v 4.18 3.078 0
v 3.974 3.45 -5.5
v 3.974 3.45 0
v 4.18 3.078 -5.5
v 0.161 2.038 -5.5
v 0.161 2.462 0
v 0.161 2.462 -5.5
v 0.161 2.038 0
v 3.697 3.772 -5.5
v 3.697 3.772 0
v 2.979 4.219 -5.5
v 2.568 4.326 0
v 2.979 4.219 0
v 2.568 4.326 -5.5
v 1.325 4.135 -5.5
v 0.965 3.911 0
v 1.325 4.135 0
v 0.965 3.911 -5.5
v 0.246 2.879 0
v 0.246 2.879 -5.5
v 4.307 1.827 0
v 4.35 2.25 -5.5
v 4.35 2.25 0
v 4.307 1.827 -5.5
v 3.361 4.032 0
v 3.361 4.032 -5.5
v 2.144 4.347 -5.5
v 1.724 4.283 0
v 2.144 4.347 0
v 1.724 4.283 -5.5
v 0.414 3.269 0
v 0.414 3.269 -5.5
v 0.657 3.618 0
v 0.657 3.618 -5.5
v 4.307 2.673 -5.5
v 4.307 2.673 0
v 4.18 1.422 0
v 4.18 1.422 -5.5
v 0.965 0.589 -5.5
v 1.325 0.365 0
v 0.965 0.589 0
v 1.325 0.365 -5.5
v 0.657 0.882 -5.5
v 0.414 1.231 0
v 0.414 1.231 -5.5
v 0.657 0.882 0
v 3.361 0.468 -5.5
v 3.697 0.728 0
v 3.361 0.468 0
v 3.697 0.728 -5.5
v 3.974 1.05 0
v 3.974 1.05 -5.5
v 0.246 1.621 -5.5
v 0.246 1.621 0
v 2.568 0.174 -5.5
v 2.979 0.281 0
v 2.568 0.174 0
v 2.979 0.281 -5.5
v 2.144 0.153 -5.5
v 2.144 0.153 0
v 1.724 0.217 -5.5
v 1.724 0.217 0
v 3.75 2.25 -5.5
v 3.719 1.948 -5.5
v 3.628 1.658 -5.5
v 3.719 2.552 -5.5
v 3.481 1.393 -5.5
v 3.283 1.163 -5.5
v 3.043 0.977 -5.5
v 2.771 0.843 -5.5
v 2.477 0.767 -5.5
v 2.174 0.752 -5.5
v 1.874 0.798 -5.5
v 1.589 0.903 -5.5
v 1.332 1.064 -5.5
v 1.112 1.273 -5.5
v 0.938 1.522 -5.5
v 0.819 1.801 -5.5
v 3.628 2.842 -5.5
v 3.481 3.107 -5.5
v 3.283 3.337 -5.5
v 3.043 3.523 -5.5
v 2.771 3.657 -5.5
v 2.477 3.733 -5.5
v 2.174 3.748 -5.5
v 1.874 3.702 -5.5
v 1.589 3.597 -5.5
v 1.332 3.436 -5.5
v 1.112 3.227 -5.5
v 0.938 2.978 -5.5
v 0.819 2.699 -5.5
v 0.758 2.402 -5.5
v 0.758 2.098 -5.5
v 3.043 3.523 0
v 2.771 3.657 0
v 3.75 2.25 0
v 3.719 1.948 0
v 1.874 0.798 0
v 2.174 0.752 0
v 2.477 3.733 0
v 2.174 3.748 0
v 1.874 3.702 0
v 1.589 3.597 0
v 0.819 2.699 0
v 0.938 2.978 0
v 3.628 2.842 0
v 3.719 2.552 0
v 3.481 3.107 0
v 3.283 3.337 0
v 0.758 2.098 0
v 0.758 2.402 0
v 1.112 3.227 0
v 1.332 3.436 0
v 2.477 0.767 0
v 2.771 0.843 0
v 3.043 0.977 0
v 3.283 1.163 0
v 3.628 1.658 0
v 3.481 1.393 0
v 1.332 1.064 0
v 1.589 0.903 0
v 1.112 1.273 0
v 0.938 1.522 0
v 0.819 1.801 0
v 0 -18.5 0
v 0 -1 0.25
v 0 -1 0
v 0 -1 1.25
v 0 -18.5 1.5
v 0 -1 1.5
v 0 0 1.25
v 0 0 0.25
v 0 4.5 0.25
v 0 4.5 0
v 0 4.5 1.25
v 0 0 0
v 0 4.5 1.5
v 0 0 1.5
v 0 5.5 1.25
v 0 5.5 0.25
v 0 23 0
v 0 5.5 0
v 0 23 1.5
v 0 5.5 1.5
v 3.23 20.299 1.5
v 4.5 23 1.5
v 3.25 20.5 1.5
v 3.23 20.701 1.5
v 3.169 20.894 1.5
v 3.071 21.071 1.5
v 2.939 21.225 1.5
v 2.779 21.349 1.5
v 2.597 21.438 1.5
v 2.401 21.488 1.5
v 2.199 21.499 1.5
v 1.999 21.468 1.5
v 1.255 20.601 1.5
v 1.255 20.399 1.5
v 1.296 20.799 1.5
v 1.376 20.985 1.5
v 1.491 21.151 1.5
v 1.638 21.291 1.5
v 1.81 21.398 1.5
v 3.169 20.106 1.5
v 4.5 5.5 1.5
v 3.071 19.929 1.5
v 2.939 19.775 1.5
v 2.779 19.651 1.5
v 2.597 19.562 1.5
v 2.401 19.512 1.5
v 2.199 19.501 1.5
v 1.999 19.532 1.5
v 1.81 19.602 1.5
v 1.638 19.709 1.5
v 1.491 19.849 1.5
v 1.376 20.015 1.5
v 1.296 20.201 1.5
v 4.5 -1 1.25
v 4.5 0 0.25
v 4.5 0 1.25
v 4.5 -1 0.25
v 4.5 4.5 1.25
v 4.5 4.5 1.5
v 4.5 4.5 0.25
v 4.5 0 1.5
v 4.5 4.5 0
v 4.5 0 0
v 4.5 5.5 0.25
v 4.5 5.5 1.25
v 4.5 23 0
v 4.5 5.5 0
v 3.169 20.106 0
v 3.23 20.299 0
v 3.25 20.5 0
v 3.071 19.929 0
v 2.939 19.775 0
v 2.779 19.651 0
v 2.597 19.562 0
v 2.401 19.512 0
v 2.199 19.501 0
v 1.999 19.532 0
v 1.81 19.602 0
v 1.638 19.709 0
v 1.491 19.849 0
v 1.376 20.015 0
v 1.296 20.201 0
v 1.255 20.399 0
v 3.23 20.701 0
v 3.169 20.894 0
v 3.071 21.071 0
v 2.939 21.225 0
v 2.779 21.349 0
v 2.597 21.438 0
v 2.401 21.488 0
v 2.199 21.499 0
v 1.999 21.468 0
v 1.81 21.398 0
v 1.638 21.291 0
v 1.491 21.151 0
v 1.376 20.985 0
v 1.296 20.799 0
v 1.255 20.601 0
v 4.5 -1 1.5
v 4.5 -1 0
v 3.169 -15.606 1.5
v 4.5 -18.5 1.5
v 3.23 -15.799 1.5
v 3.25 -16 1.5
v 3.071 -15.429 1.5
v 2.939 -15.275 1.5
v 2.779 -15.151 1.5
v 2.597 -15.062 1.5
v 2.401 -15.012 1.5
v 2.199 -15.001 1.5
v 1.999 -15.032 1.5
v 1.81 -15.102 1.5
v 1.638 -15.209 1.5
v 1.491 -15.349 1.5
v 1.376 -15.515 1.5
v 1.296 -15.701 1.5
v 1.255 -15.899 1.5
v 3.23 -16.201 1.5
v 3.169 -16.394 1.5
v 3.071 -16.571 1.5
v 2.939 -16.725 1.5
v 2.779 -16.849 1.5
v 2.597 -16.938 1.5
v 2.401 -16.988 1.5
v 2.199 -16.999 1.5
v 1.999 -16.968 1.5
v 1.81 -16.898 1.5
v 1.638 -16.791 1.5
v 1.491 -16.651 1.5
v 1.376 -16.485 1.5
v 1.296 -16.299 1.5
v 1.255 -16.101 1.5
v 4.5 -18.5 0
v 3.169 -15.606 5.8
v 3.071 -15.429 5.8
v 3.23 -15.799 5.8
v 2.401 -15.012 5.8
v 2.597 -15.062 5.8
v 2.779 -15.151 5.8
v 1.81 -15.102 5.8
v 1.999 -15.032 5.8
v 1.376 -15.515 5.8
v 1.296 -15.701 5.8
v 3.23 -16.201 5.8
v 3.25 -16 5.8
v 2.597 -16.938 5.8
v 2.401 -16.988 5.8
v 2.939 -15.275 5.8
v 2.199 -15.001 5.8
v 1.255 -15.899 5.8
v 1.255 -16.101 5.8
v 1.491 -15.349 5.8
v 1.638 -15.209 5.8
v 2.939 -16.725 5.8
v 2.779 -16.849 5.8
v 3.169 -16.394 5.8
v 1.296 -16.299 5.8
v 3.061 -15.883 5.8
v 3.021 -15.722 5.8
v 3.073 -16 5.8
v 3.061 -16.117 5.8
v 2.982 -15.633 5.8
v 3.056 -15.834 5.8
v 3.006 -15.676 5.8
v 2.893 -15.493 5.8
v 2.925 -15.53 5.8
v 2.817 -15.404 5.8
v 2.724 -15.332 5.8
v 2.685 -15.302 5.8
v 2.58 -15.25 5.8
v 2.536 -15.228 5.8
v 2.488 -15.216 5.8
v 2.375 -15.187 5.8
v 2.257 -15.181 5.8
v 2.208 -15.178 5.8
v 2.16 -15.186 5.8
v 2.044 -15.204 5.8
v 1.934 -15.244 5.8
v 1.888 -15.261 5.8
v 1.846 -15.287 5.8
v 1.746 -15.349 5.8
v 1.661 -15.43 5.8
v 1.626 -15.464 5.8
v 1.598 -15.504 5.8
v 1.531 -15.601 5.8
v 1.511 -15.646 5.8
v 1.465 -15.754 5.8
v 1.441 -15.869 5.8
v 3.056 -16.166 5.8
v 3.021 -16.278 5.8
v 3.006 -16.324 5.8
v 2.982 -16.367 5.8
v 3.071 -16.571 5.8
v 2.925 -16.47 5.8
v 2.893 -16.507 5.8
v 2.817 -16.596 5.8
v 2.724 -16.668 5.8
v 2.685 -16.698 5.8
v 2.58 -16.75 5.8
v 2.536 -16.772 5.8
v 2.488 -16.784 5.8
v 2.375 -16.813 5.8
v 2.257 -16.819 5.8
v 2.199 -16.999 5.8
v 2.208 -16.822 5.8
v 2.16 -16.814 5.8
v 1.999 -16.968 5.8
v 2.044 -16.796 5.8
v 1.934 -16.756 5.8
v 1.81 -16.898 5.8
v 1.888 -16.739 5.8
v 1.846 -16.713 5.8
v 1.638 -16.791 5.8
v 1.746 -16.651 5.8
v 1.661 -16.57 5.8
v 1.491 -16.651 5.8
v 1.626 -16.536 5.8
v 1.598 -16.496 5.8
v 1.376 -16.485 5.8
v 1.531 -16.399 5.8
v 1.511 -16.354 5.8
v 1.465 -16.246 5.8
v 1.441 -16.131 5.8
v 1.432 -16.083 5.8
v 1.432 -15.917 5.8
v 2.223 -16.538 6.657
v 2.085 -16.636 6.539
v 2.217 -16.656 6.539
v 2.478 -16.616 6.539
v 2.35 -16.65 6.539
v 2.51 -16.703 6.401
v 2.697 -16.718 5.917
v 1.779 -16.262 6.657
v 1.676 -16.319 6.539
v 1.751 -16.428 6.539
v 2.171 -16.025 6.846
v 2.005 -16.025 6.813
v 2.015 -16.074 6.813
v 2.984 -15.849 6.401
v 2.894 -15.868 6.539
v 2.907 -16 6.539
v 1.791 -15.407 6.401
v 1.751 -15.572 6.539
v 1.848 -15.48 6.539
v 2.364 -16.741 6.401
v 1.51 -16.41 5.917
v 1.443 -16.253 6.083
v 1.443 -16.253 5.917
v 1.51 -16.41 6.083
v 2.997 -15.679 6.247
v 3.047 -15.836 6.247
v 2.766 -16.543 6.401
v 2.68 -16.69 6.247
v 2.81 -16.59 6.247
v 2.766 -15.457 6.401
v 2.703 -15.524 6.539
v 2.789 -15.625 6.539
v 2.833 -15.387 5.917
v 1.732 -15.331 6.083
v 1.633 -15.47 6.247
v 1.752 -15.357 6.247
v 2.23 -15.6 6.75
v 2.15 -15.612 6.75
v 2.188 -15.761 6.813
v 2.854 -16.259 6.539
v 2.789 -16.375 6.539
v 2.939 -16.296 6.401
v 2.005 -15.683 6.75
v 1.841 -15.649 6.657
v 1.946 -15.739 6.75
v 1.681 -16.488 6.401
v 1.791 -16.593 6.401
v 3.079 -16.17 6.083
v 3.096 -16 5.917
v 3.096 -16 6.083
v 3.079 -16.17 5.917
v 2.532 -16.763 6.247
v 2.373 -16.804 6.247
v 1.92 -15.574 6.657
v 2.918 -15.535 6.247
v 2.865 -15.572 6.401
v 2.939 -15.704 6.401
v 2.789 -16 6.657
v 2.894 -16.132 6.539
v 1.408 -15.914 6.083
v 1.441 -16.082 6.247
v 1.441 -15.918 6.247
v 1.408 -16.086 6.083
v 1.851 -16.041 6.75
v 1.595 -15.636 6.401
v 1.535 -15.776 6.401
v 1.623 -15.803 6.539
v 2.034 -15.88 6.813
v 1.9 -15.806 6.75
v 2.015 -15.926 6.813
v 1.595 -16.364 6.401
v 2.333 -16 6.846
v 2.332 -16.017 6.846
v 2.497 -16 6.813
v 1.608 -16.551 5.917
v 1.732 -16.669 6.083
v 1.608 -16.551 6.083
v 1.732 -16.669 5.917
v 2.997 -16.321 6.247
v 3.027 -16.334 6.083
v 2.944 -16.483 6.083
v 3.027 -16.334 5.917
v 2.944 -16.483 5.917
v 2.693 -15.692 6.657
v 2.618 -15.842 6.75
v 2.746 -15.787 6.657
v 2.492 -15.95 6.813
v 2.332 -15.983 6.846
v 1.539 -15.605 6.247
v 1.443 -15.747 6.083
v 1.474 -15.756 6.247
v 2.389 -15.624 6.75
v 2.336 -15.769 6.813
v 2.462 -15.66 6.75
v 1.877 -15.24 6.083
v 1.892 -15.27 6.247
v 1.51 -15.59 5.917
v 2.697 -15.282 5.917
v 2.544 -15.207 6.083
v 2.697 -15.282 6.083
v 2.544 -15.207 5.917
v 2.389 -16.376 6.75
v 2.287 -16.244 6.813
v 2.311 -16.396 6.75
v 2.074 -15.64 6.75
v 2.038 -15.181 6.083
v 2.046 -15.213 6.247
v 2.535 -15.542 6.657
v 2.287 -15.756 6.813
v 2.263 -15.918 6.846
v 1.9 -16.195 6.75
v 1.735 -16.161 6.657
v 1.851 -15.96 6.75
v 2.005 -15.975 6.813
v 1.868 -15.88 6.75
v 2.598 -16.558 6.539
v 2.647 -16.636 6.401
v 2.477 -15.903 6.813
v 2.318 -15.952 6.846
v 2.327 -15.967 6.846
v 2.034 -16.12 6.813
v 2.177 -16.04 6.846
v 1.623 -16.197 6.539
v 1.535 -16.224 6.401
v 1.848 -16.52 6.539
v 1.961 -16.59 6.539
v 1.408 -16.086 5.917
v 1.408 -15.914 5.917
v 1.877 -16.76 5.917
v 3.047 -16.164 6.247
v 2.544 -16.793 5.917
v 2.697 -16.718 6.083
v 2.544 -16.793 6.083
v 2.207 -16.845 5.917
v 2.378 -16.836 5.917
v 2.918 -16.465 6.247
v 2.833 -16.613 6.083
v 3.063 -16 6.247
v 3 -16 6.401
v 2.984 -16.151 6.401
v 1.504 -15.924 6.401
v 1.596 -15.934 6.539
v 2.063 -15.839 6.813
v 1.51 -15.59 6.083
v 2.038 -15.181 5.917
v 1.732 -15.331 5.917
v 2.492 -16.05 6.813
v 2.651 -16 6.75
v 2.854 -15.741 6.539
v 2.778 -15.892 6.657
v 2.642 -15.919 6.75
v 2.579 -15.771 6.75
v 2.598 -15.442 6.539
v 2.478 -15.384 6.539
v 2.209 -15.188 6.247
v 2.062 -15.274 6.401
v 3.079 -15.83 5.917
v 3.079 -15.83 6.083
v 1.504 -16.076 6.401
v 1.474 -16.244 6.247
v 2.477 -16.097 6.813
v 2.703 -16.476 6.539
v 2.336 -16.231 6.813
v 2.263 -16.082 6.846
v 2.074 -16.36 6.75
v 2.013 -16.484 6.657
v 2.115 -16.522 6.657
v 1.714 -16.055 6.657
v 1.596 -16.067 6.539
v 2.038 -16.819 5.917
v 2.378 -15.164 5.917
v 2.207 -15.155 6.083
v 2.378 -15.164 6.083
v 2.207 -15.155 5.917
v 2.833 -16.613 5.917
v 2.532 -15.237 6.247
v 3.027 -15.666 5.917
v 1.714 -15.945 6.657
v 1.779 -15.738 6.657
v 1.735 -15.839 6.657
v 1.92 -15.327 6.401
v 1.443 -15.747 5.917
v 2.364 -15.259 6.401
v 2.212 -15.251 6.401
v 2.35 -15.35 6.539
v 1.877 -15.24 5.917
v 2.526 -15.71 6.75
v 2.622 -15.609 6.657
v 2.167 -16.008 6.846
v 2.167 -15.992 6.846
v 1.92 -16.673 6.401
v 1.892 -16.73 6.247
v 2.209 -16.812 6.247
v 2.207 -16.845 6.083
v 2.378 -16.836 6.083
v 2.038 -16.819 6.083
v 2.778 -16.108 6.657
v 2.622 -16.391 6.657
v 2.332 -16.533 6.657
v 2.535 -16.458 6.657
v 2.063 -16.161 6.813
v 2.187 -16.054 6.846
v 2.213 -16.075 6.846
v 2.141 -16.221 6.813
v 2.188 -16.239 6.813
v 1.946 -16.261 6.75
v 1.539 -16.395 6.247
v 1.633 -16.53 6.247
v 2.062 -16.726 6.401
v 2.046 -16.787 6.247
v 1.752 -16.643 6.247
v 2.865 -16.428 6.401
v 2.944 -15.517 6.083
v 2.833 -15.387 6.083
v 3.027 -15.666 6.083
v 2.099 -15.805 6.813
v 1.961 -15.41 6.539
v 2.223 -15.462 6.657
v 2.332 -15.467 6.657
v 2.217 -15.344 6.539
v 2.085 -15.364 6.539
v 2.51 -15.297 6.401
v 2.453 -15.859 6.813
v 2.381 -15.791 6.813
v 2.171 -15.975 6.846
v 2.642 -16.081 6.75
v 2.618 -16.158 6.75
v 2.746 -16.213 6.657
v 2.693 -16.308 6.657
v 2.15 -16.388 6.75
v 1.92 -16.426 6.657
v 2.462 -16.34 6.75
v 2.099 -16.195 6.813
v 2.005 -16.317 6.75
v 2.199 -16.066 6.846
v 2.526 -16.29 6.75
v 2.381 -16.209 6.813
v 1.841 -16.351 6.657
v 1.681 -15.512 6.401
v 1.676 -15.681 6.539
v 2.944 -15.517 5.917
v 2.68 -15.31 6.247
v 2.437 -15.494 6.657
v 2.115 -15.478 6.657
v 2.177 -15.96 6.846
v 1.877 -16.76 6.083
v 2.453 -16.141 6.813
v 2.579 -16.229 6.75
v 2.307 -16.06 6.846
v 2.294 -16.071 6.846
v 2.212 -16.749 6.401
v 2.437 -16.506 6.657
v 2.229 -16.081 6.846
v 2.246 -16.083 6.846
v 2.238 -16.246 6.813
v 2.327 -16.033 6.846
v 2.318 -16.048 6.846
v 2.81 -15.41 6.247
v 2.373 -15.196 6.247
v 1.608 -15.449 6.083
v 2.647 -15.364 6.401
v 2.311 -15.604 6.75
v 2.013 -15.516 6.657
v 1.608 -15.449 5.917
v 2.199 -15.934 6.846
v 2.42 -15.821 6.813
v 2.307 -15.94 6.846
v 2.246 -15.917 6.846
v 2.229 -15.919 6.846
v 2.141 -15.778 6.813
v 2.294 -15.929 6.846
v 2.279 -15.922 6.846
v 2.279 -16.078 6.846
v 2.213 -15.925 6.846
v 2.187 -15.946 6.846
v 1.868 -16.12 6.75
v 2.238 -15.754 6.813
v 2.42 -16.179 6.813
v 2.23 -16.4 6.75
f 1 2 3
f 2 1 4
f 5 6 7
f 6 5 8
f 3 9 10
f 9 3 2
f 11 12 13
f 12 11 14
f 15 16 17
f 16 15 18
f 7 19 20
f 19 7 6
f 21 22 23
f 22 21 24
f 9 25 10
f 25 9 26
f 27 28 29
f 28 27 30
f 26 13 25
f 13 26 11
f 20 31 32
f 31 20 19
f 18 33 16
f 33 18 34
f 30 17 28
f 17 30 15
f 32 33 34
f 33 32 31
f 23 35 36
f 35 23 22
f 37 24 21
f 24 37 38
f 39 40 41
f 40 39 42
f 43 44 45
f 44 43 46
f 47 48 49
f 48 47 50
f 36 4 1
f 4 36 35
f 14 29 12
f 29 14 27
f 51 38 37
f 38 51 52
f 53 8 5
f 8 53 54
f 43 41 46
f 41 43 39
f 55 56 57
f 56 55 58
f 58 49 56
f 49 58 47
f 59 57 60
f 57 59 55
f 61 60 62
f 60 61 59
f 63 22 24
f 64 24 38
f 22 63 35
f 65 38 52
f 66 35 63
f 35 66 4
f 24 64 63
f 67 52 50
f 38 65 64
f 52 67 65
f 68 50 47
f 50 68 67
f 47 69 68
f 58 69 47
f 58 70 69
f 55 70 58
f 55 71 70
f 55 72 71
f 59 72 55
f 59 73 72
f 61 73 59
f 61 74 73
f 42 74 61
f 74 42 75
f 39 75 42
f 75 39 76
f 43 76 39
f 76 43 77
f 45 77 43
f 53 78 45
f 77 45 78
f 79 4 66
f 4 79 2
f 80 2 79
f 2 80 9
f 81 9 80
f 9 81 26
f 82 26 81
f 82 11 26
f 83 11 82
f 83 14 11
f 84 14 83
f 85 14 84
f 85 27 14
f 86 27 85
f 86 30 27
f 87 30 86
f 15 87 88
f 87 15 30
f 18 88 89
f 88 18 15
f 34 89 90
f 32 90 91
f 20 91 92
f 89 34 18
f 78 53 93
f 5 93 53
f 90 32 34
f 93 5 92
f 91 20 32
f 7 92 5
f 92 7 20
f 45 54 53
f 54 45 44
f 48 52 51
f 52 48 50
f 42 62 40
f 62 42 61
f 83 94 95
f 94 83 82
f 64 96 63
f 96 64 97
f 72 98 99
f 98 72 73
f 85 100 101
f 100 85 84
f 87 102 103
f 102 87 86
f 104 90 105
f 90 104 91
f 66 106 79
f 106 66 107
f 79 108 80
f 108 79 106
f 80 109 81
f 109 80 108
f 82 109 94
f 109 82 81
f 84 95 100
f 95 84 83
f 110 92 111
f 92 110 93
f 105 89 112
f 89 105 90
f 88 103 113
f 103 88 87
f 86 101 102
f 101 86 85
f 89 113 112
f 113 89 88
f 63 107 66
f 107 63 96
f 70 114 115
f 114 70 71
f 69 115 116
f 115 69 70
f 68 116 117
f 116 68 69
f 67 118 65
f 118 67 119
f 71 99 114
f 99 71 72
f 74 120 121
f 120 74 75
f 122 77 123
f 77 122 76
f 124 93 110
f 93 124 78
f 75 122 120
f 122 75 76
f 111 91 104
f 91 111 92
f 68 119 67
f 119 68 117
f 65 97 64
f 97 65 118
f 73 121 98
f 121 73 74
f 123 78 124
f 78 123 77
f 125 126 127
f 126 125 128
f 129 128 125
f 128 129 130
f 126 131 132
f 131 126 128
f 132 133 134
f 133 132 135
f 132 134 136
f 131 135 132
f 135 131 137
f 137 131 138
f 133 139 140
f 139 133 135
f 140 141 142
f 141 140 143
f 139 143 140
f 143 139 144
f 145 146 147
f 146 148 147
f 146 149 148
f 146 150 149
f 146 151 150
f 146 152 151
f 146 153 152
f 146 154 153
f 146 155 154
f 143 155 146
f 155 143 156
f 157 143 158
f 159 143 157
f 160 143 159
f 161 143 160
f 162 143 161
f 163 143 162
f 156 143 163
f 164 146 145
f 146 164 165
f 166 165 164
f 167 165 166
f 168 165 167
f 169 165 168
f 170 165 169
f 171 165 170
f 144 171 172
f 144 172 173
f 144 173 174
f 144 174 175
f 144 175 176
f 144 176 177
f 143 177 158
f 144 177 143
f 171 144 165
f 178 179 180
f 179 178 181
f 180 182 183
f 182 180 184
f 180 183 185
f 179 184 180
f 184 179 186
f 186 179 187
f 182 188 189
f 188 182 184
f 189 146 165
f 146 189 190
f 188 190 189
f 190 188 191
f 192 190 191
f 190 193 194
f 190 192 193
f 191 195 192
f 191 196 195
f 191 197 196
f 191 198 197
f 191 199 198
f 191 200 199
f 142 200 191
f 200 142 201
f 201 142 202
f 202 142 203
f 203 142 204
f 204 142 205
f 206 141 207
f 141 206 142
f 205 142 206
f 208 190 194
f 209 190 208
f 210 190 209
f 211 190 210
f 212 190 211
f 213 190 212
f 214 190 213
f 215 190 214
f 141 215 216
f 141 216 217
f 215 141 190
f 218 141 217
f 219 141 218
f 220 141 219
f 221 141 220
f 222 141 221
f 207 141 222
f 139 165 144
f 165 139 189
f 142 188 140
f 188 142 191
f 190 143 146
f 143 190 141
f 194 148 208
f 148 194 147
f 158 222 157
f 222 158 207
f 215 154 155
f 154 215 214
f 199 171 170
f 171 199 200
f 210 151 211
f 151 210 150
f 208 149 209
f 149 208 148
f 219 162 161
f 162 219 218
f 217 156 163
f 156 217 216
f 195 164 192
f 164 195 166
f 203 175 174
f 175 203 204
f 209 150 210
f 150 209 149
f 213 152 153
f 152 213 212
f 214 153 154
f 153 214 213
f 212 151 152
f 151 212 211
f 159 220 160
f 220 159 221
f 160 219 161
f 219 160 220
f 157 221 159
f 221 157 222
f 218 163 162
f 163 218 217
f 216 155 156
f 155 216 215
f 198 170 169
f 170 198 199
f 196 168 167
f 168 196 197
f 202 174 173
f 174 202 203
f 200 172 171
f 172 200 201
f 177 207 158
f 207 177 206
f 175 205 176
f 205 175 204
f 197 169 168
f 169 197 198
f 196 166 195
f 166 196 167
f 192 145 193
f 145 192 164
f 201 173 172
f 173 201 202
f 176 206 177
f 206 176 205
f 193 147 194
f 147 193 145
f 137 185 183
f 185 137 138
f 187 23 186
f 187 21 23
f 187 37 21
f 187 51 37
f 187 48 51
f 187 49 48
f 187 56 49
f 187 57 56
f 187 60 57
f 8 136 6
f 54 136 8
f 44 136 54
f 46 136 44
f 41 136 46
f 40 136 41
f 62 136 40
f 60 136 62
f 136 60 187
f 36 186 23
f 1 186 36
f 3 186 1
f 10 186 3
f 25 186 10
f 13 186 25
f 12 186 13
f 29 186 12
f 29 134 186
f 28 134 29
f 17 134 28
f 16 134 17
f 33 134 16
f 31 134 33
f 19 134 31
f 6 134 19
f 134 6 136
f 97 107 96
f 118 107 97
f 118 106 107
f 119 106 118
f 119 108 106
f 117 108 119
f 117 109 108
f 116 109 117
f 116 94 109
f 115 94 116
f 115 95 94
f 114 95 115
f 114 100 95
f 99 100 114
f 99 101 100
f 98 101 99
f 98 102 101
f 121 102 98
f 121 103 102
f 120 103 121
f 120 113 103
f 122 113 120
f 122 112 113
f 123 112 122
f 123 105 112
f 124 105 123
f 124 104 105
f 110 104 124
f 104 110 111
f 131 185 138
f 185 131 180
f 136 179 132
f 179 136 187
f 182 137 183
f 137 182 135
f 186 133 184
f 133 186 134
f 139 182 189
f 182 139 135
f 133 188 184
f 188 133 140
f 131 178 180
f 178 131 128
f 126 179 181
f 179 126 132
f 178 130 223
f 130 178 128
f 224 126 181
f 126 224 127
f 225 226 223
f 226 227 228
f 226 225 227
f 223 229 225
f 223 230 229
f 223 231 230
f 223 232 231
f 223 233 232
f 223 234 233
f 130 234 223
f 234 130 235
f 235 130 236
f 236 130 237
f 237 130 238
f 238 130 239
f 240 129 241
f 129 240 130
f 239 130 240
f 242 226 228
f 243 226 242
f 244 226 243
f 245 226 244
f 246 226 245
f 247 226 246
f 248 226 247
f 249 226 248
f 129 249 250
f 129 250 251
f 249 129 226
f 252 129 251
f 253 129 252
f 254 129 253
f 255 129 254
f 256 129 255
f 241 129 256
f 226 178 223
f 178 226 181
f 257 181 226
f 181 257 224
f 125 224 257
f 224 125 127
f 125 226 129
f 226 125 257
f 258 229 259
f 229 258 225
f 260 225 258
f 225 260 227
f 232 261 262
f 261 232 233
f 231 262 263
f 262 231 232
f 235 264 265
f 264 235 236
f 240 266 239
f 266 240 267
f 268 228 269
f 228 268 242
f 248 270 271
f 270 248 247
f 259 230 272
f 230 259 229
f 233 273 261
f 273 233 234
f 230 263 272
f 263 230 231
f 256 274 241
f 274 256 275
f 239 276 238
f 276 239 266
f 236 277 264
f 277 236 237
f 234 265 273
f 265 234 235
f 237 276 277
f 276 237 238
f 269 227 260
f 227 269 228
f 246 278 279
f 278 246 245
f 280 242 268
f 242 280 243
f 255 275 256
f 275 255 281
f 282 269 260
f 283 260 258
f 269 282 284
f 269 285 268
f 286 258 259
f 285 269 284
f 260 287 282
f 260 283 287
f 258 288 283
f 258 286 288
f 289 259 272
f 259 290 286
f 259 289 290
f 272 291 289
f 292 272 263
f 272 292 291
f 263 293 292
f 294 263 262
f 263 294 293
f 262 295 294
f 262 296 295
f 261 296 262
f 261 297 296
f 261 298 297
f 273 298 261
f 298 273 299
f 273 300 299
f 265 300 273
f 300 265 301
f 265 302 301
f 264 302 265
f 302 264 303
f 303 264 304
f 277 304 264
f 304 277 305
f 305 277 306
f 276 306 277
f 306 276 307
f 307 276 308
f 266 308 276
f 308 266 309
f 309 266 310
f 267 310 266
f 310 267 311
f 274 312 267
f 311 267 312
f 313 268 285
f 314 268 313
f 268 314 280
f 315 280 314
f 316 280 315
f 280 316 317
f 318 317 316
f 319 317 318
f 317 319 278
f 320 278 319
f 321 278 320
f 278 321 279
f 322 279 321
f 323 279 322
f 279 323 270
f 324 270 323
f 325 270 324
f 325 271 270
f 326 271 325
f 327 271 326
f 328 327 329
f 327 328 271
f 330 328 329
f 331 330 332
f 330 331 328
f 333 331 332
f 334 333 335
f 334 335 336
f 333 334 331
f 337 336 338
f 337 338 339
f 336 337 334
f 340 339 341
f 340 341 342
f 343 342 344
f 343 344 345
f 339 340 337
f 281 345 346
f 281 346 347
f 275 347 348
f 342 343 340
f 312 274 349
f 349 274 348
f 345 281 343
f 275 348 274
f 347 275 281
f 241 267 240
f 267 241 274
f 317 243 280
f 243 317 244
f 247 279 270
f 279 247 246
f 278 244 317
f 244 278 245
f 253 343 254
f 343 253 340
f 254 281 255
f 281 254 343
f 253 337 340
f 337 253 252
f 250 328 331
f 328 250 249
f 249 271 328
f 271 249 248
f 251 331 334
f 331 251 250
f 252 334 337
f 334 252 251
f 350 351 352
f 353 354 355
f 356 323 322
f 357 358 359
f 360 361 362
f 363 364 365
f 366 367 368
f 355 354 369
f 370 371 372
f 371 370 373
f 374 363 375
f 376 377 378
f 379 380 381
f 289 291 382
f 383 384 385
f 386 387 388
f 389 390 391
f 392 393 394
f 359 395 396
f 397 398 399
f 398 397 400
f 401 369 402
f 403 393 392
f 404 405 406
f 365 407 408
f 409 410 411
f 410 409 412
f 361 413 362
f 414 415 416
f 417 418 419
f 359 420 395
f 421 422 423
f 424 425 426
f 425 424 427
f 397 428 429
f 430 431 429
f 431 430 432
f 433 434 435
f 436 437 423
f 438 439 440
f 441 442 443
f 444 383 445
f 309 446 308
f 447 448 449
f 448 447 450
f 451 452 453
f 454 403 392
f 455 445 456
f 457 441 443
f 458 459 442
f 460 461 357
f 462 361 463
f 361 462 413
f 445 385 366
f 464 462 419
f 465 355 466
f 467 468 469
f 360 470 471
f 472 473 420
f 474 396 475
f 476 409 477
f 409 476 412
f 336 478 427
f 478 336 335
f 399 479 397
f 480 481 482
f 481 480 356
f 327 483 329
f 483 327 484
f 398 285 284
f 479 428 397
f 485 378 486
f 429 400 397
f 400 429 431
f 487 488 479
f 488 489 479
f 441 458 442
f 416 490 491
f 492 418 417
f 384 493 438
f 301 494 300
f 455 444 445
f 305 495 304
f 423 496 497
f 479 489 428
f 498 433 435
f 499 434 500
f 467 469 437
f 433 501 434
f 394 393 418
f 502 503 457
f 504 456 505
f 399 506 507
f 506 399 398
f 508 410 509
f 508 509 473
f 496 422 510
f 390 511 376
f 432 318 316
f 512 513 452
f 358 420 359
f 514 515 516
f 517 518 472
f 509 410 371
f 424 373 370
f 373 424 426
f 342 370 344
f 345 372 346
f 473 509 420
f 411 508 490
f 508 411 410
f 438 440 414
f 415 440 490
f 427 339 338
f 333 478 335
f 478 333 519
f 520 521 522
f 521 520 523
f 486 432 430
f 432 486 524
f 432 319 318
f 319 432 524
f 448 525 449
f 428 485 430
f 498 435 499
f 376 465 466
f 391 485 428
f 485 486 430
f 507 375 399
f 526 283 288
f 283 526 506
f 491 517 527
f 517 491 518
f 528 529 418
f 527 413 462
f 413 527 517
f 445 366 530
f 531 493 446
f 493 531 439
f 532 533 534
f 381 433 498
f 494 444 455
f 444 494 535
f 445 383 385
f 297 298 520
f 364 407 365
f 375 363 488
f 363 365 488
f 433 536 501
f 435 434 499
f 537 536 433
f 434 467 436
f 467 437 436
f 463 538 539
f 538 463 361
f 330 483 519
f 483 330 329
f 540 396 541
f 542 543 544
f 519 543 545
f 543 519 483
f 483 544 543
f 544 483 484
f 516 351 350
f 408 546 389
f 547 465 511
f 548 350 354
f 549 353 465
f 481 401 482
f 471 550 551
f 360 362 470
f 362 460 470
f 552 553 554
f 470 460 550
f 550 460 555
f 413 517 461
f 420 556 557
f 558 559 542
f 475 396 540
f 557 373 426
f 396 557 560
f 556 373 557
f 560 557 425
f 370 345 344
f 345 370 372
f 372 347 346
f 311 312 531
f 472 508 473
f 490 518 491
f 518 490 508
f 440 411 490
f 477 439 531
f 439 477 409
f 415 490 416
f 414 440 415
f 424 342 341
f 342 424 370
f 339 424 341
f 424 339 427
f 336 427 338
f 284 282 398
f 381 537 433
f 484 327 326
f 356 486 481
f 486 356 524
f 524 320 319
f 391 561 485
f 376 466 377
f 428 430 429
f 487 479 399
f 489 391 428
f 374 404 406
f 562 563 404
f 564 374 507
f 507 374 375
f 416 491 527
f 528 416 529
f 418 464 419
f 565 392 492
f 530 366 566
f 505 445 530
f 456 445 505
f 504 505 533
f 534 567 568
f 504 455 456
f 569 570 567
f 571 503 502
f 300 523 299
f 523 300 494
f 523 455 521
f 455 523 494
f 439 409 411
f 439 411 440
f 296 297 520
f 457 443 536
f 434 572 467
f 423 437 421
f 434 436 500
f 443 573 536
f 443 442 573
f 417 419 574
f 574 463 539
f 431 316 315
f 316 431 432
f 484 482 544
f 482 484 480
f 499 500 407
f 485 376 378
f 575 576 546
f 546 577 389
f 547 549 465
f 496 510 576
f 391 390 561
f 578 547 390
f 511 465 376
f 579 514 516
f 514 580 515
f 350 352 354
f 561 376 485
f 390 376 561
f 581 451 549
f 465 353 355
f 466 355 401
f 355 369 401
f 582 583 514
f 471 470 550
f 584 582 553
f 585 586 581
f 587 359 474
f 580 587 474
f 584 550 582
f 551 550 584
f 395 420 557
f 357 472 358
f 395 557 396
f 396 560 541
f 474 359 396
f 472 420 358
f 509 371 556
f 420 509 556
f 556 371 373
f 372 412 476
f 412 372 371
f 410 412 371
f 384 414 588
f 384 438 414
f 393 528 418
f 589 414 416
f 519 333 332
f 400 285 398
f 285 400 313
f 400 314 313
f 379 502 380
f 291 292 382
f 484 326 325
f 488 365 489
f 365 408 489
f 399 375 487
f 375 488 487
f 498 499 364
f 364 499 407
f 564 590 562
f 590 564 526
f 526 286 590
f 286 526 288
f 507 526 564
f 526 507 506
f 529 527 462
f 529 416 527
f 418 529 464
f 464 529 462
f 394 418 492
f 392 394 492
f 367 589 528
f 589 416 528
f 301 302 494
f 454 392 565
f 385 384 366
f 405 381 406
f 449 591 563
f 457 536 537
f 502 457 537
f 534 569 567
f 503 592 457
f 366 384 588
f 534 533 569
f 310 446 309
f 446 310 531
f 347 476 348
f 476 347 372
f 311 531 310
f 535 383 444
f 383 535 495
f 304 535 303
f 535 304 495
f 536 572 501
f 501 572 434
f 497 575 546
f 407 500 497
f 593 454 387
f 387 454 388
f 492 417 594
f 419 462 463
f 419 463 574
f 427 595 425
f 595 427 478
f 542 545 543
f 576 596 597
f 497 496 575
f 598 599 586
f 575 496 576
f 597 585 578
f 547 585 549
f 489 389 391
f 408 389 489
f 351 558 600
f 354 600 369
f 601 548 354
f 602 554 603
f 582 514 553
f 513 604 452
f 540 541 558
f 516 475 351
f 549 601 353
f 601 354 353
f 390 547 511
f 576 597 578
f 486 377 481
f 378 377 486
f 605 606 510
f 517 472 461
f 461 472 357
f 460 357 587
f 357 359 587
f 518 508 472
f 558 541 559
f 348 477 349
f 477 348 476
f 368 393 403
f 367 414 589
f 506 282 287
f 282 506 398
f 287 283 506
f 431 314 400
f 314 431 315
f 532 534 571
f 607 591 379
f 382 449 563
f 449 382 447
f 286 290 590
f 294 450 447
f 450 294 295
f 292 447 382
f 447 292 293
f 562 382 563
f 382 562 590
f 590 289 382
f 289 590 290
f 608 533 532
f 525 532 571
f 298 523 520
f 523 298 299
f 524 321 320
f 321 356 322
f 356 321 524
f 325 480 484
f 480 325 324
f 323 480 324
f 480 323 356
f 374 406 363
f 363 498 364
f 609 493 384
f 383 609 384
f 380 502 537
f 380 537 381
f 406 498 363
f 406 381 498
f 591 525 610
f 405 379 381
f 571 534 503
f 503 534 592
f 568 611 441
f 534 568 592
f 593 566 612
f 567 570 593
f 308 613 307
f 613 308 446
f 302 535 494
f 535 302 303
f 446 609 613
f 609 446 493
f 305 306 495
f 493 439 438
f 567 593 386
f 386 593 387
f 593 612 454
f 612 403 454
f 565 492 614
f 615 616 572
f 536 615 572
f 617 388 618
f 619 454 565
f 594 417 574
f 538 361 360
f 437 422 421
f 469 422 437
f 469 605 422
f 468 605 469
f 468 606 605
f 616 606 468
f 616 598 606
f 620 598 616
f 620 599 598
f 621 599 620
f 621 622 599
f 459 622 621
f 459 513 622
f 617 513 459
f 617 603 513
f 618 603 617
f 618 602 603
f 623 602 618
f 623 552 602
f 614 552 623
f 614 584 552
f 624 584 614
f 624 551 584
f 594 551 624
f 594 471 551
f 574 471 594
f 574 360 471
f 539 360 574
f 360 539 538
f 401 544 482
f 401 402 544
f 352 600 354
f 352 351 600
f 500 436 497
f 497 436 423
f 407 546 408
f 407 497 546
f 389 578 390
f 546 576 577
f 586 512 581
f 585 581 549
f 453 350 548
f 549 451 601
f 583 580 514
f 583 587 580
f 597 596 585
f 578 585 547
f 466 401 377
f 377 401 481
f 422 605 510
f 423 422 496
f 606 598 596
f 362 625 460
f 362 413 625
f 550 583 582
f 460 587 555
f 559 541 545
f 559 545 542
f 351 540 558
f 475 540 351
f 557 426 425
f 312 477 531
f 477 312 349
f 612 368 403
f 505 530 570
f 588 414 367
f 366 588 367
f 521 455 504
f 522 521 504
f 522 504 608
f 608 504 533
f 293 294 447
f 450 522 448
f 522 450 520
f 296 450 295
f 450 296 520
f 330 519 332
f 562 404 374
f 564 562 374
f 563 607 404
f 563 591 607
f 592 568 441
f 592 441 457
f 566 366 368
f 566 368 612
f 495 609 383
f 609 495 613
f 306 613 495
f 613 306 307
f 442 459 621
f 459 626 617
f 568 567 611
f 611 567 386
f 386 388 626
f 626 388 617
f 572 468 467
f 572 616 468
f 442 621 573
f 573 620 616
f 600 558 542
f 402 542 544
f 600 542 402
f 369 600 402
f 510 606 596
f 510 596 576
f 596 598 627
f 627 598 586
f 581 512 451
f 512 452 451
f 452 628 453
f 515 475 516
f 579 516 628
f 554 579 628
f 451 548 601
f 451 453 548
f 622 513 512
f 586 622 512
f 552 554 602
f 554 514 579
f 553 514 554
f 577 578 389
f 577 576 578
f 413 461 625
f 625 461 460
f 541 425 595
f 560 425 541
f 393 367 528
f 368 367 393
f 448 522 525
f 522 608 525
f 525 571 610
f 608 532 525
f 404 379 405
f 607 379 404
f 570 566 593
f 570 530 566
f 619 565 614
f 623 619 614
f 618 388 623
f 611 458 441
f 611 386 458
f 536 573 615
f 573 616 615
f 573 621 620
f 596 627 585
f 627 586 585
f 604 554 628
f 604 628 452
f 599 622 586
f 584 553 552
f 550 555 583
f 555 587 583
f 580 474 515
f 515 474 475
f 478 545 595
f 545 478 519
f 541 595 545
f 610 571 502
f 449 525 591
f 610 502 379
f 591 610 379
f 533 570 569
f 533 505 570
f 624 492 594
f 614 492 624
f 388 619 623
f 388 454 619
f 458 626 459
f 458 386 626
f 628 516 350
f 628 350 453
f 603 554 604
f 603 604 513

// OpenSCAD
/* Wing Strut for the GWS E-Starter 

    Author: Linus Molteno <linus@molteno.net>
    Copyright 2016.
    License GPLv3
*/

inbetweenLength = 1;
strutWidth = 4.5;
clipLength = 35/2;
holeDi = 2;
holeSpacing = 30/2+inbetweenLength+strutWidth;
holeSpacing2 = 30/2+inbetweenLength   ;
height = 1.5;
pillarHeight = 4.3;
ballDiameter = 1.7;
$fn=31;

module inbetween() {
    translate([0,0,height-1.25])cube([strutWidth,inbetweenLength,height/1.5]);
}
cube([strutWidth,strutWidth,height]);
translate([0,strutWidth,0])inbetween();
translate([strutWidth,0,0])rotate([0,0,180])inbetween();
difference() {
	translate([0,strutWidth+(inbetweenLength),0])cube([strutWidth,clipLength,height]);
	#translate([strutWidth/2,holeSpacing,-1])cylinder(d=holeDi,h=height+2);
}
translate([strutWidth,-inbetweenLength,0])rotate([0,0,180])cube([strutWidth,clipLength,height]);
#translate([strutWidth/2,-holeSpacing2,height])cylinder(d=holeDi,h=pillarHeight);
translate([strutWidth/2,-holeSpacing2,pillarHeight+ballDiameter])sphere(d=ballDiameter);
translate([0,0,-7])difference() {
    translate([strutWidth/2,strutWidth/2,height])cylinder(d=4.2,h=6.4);
    translate([strutWidth/2,strutWidth/2,height])cylinder(d=3,h=7);
}
